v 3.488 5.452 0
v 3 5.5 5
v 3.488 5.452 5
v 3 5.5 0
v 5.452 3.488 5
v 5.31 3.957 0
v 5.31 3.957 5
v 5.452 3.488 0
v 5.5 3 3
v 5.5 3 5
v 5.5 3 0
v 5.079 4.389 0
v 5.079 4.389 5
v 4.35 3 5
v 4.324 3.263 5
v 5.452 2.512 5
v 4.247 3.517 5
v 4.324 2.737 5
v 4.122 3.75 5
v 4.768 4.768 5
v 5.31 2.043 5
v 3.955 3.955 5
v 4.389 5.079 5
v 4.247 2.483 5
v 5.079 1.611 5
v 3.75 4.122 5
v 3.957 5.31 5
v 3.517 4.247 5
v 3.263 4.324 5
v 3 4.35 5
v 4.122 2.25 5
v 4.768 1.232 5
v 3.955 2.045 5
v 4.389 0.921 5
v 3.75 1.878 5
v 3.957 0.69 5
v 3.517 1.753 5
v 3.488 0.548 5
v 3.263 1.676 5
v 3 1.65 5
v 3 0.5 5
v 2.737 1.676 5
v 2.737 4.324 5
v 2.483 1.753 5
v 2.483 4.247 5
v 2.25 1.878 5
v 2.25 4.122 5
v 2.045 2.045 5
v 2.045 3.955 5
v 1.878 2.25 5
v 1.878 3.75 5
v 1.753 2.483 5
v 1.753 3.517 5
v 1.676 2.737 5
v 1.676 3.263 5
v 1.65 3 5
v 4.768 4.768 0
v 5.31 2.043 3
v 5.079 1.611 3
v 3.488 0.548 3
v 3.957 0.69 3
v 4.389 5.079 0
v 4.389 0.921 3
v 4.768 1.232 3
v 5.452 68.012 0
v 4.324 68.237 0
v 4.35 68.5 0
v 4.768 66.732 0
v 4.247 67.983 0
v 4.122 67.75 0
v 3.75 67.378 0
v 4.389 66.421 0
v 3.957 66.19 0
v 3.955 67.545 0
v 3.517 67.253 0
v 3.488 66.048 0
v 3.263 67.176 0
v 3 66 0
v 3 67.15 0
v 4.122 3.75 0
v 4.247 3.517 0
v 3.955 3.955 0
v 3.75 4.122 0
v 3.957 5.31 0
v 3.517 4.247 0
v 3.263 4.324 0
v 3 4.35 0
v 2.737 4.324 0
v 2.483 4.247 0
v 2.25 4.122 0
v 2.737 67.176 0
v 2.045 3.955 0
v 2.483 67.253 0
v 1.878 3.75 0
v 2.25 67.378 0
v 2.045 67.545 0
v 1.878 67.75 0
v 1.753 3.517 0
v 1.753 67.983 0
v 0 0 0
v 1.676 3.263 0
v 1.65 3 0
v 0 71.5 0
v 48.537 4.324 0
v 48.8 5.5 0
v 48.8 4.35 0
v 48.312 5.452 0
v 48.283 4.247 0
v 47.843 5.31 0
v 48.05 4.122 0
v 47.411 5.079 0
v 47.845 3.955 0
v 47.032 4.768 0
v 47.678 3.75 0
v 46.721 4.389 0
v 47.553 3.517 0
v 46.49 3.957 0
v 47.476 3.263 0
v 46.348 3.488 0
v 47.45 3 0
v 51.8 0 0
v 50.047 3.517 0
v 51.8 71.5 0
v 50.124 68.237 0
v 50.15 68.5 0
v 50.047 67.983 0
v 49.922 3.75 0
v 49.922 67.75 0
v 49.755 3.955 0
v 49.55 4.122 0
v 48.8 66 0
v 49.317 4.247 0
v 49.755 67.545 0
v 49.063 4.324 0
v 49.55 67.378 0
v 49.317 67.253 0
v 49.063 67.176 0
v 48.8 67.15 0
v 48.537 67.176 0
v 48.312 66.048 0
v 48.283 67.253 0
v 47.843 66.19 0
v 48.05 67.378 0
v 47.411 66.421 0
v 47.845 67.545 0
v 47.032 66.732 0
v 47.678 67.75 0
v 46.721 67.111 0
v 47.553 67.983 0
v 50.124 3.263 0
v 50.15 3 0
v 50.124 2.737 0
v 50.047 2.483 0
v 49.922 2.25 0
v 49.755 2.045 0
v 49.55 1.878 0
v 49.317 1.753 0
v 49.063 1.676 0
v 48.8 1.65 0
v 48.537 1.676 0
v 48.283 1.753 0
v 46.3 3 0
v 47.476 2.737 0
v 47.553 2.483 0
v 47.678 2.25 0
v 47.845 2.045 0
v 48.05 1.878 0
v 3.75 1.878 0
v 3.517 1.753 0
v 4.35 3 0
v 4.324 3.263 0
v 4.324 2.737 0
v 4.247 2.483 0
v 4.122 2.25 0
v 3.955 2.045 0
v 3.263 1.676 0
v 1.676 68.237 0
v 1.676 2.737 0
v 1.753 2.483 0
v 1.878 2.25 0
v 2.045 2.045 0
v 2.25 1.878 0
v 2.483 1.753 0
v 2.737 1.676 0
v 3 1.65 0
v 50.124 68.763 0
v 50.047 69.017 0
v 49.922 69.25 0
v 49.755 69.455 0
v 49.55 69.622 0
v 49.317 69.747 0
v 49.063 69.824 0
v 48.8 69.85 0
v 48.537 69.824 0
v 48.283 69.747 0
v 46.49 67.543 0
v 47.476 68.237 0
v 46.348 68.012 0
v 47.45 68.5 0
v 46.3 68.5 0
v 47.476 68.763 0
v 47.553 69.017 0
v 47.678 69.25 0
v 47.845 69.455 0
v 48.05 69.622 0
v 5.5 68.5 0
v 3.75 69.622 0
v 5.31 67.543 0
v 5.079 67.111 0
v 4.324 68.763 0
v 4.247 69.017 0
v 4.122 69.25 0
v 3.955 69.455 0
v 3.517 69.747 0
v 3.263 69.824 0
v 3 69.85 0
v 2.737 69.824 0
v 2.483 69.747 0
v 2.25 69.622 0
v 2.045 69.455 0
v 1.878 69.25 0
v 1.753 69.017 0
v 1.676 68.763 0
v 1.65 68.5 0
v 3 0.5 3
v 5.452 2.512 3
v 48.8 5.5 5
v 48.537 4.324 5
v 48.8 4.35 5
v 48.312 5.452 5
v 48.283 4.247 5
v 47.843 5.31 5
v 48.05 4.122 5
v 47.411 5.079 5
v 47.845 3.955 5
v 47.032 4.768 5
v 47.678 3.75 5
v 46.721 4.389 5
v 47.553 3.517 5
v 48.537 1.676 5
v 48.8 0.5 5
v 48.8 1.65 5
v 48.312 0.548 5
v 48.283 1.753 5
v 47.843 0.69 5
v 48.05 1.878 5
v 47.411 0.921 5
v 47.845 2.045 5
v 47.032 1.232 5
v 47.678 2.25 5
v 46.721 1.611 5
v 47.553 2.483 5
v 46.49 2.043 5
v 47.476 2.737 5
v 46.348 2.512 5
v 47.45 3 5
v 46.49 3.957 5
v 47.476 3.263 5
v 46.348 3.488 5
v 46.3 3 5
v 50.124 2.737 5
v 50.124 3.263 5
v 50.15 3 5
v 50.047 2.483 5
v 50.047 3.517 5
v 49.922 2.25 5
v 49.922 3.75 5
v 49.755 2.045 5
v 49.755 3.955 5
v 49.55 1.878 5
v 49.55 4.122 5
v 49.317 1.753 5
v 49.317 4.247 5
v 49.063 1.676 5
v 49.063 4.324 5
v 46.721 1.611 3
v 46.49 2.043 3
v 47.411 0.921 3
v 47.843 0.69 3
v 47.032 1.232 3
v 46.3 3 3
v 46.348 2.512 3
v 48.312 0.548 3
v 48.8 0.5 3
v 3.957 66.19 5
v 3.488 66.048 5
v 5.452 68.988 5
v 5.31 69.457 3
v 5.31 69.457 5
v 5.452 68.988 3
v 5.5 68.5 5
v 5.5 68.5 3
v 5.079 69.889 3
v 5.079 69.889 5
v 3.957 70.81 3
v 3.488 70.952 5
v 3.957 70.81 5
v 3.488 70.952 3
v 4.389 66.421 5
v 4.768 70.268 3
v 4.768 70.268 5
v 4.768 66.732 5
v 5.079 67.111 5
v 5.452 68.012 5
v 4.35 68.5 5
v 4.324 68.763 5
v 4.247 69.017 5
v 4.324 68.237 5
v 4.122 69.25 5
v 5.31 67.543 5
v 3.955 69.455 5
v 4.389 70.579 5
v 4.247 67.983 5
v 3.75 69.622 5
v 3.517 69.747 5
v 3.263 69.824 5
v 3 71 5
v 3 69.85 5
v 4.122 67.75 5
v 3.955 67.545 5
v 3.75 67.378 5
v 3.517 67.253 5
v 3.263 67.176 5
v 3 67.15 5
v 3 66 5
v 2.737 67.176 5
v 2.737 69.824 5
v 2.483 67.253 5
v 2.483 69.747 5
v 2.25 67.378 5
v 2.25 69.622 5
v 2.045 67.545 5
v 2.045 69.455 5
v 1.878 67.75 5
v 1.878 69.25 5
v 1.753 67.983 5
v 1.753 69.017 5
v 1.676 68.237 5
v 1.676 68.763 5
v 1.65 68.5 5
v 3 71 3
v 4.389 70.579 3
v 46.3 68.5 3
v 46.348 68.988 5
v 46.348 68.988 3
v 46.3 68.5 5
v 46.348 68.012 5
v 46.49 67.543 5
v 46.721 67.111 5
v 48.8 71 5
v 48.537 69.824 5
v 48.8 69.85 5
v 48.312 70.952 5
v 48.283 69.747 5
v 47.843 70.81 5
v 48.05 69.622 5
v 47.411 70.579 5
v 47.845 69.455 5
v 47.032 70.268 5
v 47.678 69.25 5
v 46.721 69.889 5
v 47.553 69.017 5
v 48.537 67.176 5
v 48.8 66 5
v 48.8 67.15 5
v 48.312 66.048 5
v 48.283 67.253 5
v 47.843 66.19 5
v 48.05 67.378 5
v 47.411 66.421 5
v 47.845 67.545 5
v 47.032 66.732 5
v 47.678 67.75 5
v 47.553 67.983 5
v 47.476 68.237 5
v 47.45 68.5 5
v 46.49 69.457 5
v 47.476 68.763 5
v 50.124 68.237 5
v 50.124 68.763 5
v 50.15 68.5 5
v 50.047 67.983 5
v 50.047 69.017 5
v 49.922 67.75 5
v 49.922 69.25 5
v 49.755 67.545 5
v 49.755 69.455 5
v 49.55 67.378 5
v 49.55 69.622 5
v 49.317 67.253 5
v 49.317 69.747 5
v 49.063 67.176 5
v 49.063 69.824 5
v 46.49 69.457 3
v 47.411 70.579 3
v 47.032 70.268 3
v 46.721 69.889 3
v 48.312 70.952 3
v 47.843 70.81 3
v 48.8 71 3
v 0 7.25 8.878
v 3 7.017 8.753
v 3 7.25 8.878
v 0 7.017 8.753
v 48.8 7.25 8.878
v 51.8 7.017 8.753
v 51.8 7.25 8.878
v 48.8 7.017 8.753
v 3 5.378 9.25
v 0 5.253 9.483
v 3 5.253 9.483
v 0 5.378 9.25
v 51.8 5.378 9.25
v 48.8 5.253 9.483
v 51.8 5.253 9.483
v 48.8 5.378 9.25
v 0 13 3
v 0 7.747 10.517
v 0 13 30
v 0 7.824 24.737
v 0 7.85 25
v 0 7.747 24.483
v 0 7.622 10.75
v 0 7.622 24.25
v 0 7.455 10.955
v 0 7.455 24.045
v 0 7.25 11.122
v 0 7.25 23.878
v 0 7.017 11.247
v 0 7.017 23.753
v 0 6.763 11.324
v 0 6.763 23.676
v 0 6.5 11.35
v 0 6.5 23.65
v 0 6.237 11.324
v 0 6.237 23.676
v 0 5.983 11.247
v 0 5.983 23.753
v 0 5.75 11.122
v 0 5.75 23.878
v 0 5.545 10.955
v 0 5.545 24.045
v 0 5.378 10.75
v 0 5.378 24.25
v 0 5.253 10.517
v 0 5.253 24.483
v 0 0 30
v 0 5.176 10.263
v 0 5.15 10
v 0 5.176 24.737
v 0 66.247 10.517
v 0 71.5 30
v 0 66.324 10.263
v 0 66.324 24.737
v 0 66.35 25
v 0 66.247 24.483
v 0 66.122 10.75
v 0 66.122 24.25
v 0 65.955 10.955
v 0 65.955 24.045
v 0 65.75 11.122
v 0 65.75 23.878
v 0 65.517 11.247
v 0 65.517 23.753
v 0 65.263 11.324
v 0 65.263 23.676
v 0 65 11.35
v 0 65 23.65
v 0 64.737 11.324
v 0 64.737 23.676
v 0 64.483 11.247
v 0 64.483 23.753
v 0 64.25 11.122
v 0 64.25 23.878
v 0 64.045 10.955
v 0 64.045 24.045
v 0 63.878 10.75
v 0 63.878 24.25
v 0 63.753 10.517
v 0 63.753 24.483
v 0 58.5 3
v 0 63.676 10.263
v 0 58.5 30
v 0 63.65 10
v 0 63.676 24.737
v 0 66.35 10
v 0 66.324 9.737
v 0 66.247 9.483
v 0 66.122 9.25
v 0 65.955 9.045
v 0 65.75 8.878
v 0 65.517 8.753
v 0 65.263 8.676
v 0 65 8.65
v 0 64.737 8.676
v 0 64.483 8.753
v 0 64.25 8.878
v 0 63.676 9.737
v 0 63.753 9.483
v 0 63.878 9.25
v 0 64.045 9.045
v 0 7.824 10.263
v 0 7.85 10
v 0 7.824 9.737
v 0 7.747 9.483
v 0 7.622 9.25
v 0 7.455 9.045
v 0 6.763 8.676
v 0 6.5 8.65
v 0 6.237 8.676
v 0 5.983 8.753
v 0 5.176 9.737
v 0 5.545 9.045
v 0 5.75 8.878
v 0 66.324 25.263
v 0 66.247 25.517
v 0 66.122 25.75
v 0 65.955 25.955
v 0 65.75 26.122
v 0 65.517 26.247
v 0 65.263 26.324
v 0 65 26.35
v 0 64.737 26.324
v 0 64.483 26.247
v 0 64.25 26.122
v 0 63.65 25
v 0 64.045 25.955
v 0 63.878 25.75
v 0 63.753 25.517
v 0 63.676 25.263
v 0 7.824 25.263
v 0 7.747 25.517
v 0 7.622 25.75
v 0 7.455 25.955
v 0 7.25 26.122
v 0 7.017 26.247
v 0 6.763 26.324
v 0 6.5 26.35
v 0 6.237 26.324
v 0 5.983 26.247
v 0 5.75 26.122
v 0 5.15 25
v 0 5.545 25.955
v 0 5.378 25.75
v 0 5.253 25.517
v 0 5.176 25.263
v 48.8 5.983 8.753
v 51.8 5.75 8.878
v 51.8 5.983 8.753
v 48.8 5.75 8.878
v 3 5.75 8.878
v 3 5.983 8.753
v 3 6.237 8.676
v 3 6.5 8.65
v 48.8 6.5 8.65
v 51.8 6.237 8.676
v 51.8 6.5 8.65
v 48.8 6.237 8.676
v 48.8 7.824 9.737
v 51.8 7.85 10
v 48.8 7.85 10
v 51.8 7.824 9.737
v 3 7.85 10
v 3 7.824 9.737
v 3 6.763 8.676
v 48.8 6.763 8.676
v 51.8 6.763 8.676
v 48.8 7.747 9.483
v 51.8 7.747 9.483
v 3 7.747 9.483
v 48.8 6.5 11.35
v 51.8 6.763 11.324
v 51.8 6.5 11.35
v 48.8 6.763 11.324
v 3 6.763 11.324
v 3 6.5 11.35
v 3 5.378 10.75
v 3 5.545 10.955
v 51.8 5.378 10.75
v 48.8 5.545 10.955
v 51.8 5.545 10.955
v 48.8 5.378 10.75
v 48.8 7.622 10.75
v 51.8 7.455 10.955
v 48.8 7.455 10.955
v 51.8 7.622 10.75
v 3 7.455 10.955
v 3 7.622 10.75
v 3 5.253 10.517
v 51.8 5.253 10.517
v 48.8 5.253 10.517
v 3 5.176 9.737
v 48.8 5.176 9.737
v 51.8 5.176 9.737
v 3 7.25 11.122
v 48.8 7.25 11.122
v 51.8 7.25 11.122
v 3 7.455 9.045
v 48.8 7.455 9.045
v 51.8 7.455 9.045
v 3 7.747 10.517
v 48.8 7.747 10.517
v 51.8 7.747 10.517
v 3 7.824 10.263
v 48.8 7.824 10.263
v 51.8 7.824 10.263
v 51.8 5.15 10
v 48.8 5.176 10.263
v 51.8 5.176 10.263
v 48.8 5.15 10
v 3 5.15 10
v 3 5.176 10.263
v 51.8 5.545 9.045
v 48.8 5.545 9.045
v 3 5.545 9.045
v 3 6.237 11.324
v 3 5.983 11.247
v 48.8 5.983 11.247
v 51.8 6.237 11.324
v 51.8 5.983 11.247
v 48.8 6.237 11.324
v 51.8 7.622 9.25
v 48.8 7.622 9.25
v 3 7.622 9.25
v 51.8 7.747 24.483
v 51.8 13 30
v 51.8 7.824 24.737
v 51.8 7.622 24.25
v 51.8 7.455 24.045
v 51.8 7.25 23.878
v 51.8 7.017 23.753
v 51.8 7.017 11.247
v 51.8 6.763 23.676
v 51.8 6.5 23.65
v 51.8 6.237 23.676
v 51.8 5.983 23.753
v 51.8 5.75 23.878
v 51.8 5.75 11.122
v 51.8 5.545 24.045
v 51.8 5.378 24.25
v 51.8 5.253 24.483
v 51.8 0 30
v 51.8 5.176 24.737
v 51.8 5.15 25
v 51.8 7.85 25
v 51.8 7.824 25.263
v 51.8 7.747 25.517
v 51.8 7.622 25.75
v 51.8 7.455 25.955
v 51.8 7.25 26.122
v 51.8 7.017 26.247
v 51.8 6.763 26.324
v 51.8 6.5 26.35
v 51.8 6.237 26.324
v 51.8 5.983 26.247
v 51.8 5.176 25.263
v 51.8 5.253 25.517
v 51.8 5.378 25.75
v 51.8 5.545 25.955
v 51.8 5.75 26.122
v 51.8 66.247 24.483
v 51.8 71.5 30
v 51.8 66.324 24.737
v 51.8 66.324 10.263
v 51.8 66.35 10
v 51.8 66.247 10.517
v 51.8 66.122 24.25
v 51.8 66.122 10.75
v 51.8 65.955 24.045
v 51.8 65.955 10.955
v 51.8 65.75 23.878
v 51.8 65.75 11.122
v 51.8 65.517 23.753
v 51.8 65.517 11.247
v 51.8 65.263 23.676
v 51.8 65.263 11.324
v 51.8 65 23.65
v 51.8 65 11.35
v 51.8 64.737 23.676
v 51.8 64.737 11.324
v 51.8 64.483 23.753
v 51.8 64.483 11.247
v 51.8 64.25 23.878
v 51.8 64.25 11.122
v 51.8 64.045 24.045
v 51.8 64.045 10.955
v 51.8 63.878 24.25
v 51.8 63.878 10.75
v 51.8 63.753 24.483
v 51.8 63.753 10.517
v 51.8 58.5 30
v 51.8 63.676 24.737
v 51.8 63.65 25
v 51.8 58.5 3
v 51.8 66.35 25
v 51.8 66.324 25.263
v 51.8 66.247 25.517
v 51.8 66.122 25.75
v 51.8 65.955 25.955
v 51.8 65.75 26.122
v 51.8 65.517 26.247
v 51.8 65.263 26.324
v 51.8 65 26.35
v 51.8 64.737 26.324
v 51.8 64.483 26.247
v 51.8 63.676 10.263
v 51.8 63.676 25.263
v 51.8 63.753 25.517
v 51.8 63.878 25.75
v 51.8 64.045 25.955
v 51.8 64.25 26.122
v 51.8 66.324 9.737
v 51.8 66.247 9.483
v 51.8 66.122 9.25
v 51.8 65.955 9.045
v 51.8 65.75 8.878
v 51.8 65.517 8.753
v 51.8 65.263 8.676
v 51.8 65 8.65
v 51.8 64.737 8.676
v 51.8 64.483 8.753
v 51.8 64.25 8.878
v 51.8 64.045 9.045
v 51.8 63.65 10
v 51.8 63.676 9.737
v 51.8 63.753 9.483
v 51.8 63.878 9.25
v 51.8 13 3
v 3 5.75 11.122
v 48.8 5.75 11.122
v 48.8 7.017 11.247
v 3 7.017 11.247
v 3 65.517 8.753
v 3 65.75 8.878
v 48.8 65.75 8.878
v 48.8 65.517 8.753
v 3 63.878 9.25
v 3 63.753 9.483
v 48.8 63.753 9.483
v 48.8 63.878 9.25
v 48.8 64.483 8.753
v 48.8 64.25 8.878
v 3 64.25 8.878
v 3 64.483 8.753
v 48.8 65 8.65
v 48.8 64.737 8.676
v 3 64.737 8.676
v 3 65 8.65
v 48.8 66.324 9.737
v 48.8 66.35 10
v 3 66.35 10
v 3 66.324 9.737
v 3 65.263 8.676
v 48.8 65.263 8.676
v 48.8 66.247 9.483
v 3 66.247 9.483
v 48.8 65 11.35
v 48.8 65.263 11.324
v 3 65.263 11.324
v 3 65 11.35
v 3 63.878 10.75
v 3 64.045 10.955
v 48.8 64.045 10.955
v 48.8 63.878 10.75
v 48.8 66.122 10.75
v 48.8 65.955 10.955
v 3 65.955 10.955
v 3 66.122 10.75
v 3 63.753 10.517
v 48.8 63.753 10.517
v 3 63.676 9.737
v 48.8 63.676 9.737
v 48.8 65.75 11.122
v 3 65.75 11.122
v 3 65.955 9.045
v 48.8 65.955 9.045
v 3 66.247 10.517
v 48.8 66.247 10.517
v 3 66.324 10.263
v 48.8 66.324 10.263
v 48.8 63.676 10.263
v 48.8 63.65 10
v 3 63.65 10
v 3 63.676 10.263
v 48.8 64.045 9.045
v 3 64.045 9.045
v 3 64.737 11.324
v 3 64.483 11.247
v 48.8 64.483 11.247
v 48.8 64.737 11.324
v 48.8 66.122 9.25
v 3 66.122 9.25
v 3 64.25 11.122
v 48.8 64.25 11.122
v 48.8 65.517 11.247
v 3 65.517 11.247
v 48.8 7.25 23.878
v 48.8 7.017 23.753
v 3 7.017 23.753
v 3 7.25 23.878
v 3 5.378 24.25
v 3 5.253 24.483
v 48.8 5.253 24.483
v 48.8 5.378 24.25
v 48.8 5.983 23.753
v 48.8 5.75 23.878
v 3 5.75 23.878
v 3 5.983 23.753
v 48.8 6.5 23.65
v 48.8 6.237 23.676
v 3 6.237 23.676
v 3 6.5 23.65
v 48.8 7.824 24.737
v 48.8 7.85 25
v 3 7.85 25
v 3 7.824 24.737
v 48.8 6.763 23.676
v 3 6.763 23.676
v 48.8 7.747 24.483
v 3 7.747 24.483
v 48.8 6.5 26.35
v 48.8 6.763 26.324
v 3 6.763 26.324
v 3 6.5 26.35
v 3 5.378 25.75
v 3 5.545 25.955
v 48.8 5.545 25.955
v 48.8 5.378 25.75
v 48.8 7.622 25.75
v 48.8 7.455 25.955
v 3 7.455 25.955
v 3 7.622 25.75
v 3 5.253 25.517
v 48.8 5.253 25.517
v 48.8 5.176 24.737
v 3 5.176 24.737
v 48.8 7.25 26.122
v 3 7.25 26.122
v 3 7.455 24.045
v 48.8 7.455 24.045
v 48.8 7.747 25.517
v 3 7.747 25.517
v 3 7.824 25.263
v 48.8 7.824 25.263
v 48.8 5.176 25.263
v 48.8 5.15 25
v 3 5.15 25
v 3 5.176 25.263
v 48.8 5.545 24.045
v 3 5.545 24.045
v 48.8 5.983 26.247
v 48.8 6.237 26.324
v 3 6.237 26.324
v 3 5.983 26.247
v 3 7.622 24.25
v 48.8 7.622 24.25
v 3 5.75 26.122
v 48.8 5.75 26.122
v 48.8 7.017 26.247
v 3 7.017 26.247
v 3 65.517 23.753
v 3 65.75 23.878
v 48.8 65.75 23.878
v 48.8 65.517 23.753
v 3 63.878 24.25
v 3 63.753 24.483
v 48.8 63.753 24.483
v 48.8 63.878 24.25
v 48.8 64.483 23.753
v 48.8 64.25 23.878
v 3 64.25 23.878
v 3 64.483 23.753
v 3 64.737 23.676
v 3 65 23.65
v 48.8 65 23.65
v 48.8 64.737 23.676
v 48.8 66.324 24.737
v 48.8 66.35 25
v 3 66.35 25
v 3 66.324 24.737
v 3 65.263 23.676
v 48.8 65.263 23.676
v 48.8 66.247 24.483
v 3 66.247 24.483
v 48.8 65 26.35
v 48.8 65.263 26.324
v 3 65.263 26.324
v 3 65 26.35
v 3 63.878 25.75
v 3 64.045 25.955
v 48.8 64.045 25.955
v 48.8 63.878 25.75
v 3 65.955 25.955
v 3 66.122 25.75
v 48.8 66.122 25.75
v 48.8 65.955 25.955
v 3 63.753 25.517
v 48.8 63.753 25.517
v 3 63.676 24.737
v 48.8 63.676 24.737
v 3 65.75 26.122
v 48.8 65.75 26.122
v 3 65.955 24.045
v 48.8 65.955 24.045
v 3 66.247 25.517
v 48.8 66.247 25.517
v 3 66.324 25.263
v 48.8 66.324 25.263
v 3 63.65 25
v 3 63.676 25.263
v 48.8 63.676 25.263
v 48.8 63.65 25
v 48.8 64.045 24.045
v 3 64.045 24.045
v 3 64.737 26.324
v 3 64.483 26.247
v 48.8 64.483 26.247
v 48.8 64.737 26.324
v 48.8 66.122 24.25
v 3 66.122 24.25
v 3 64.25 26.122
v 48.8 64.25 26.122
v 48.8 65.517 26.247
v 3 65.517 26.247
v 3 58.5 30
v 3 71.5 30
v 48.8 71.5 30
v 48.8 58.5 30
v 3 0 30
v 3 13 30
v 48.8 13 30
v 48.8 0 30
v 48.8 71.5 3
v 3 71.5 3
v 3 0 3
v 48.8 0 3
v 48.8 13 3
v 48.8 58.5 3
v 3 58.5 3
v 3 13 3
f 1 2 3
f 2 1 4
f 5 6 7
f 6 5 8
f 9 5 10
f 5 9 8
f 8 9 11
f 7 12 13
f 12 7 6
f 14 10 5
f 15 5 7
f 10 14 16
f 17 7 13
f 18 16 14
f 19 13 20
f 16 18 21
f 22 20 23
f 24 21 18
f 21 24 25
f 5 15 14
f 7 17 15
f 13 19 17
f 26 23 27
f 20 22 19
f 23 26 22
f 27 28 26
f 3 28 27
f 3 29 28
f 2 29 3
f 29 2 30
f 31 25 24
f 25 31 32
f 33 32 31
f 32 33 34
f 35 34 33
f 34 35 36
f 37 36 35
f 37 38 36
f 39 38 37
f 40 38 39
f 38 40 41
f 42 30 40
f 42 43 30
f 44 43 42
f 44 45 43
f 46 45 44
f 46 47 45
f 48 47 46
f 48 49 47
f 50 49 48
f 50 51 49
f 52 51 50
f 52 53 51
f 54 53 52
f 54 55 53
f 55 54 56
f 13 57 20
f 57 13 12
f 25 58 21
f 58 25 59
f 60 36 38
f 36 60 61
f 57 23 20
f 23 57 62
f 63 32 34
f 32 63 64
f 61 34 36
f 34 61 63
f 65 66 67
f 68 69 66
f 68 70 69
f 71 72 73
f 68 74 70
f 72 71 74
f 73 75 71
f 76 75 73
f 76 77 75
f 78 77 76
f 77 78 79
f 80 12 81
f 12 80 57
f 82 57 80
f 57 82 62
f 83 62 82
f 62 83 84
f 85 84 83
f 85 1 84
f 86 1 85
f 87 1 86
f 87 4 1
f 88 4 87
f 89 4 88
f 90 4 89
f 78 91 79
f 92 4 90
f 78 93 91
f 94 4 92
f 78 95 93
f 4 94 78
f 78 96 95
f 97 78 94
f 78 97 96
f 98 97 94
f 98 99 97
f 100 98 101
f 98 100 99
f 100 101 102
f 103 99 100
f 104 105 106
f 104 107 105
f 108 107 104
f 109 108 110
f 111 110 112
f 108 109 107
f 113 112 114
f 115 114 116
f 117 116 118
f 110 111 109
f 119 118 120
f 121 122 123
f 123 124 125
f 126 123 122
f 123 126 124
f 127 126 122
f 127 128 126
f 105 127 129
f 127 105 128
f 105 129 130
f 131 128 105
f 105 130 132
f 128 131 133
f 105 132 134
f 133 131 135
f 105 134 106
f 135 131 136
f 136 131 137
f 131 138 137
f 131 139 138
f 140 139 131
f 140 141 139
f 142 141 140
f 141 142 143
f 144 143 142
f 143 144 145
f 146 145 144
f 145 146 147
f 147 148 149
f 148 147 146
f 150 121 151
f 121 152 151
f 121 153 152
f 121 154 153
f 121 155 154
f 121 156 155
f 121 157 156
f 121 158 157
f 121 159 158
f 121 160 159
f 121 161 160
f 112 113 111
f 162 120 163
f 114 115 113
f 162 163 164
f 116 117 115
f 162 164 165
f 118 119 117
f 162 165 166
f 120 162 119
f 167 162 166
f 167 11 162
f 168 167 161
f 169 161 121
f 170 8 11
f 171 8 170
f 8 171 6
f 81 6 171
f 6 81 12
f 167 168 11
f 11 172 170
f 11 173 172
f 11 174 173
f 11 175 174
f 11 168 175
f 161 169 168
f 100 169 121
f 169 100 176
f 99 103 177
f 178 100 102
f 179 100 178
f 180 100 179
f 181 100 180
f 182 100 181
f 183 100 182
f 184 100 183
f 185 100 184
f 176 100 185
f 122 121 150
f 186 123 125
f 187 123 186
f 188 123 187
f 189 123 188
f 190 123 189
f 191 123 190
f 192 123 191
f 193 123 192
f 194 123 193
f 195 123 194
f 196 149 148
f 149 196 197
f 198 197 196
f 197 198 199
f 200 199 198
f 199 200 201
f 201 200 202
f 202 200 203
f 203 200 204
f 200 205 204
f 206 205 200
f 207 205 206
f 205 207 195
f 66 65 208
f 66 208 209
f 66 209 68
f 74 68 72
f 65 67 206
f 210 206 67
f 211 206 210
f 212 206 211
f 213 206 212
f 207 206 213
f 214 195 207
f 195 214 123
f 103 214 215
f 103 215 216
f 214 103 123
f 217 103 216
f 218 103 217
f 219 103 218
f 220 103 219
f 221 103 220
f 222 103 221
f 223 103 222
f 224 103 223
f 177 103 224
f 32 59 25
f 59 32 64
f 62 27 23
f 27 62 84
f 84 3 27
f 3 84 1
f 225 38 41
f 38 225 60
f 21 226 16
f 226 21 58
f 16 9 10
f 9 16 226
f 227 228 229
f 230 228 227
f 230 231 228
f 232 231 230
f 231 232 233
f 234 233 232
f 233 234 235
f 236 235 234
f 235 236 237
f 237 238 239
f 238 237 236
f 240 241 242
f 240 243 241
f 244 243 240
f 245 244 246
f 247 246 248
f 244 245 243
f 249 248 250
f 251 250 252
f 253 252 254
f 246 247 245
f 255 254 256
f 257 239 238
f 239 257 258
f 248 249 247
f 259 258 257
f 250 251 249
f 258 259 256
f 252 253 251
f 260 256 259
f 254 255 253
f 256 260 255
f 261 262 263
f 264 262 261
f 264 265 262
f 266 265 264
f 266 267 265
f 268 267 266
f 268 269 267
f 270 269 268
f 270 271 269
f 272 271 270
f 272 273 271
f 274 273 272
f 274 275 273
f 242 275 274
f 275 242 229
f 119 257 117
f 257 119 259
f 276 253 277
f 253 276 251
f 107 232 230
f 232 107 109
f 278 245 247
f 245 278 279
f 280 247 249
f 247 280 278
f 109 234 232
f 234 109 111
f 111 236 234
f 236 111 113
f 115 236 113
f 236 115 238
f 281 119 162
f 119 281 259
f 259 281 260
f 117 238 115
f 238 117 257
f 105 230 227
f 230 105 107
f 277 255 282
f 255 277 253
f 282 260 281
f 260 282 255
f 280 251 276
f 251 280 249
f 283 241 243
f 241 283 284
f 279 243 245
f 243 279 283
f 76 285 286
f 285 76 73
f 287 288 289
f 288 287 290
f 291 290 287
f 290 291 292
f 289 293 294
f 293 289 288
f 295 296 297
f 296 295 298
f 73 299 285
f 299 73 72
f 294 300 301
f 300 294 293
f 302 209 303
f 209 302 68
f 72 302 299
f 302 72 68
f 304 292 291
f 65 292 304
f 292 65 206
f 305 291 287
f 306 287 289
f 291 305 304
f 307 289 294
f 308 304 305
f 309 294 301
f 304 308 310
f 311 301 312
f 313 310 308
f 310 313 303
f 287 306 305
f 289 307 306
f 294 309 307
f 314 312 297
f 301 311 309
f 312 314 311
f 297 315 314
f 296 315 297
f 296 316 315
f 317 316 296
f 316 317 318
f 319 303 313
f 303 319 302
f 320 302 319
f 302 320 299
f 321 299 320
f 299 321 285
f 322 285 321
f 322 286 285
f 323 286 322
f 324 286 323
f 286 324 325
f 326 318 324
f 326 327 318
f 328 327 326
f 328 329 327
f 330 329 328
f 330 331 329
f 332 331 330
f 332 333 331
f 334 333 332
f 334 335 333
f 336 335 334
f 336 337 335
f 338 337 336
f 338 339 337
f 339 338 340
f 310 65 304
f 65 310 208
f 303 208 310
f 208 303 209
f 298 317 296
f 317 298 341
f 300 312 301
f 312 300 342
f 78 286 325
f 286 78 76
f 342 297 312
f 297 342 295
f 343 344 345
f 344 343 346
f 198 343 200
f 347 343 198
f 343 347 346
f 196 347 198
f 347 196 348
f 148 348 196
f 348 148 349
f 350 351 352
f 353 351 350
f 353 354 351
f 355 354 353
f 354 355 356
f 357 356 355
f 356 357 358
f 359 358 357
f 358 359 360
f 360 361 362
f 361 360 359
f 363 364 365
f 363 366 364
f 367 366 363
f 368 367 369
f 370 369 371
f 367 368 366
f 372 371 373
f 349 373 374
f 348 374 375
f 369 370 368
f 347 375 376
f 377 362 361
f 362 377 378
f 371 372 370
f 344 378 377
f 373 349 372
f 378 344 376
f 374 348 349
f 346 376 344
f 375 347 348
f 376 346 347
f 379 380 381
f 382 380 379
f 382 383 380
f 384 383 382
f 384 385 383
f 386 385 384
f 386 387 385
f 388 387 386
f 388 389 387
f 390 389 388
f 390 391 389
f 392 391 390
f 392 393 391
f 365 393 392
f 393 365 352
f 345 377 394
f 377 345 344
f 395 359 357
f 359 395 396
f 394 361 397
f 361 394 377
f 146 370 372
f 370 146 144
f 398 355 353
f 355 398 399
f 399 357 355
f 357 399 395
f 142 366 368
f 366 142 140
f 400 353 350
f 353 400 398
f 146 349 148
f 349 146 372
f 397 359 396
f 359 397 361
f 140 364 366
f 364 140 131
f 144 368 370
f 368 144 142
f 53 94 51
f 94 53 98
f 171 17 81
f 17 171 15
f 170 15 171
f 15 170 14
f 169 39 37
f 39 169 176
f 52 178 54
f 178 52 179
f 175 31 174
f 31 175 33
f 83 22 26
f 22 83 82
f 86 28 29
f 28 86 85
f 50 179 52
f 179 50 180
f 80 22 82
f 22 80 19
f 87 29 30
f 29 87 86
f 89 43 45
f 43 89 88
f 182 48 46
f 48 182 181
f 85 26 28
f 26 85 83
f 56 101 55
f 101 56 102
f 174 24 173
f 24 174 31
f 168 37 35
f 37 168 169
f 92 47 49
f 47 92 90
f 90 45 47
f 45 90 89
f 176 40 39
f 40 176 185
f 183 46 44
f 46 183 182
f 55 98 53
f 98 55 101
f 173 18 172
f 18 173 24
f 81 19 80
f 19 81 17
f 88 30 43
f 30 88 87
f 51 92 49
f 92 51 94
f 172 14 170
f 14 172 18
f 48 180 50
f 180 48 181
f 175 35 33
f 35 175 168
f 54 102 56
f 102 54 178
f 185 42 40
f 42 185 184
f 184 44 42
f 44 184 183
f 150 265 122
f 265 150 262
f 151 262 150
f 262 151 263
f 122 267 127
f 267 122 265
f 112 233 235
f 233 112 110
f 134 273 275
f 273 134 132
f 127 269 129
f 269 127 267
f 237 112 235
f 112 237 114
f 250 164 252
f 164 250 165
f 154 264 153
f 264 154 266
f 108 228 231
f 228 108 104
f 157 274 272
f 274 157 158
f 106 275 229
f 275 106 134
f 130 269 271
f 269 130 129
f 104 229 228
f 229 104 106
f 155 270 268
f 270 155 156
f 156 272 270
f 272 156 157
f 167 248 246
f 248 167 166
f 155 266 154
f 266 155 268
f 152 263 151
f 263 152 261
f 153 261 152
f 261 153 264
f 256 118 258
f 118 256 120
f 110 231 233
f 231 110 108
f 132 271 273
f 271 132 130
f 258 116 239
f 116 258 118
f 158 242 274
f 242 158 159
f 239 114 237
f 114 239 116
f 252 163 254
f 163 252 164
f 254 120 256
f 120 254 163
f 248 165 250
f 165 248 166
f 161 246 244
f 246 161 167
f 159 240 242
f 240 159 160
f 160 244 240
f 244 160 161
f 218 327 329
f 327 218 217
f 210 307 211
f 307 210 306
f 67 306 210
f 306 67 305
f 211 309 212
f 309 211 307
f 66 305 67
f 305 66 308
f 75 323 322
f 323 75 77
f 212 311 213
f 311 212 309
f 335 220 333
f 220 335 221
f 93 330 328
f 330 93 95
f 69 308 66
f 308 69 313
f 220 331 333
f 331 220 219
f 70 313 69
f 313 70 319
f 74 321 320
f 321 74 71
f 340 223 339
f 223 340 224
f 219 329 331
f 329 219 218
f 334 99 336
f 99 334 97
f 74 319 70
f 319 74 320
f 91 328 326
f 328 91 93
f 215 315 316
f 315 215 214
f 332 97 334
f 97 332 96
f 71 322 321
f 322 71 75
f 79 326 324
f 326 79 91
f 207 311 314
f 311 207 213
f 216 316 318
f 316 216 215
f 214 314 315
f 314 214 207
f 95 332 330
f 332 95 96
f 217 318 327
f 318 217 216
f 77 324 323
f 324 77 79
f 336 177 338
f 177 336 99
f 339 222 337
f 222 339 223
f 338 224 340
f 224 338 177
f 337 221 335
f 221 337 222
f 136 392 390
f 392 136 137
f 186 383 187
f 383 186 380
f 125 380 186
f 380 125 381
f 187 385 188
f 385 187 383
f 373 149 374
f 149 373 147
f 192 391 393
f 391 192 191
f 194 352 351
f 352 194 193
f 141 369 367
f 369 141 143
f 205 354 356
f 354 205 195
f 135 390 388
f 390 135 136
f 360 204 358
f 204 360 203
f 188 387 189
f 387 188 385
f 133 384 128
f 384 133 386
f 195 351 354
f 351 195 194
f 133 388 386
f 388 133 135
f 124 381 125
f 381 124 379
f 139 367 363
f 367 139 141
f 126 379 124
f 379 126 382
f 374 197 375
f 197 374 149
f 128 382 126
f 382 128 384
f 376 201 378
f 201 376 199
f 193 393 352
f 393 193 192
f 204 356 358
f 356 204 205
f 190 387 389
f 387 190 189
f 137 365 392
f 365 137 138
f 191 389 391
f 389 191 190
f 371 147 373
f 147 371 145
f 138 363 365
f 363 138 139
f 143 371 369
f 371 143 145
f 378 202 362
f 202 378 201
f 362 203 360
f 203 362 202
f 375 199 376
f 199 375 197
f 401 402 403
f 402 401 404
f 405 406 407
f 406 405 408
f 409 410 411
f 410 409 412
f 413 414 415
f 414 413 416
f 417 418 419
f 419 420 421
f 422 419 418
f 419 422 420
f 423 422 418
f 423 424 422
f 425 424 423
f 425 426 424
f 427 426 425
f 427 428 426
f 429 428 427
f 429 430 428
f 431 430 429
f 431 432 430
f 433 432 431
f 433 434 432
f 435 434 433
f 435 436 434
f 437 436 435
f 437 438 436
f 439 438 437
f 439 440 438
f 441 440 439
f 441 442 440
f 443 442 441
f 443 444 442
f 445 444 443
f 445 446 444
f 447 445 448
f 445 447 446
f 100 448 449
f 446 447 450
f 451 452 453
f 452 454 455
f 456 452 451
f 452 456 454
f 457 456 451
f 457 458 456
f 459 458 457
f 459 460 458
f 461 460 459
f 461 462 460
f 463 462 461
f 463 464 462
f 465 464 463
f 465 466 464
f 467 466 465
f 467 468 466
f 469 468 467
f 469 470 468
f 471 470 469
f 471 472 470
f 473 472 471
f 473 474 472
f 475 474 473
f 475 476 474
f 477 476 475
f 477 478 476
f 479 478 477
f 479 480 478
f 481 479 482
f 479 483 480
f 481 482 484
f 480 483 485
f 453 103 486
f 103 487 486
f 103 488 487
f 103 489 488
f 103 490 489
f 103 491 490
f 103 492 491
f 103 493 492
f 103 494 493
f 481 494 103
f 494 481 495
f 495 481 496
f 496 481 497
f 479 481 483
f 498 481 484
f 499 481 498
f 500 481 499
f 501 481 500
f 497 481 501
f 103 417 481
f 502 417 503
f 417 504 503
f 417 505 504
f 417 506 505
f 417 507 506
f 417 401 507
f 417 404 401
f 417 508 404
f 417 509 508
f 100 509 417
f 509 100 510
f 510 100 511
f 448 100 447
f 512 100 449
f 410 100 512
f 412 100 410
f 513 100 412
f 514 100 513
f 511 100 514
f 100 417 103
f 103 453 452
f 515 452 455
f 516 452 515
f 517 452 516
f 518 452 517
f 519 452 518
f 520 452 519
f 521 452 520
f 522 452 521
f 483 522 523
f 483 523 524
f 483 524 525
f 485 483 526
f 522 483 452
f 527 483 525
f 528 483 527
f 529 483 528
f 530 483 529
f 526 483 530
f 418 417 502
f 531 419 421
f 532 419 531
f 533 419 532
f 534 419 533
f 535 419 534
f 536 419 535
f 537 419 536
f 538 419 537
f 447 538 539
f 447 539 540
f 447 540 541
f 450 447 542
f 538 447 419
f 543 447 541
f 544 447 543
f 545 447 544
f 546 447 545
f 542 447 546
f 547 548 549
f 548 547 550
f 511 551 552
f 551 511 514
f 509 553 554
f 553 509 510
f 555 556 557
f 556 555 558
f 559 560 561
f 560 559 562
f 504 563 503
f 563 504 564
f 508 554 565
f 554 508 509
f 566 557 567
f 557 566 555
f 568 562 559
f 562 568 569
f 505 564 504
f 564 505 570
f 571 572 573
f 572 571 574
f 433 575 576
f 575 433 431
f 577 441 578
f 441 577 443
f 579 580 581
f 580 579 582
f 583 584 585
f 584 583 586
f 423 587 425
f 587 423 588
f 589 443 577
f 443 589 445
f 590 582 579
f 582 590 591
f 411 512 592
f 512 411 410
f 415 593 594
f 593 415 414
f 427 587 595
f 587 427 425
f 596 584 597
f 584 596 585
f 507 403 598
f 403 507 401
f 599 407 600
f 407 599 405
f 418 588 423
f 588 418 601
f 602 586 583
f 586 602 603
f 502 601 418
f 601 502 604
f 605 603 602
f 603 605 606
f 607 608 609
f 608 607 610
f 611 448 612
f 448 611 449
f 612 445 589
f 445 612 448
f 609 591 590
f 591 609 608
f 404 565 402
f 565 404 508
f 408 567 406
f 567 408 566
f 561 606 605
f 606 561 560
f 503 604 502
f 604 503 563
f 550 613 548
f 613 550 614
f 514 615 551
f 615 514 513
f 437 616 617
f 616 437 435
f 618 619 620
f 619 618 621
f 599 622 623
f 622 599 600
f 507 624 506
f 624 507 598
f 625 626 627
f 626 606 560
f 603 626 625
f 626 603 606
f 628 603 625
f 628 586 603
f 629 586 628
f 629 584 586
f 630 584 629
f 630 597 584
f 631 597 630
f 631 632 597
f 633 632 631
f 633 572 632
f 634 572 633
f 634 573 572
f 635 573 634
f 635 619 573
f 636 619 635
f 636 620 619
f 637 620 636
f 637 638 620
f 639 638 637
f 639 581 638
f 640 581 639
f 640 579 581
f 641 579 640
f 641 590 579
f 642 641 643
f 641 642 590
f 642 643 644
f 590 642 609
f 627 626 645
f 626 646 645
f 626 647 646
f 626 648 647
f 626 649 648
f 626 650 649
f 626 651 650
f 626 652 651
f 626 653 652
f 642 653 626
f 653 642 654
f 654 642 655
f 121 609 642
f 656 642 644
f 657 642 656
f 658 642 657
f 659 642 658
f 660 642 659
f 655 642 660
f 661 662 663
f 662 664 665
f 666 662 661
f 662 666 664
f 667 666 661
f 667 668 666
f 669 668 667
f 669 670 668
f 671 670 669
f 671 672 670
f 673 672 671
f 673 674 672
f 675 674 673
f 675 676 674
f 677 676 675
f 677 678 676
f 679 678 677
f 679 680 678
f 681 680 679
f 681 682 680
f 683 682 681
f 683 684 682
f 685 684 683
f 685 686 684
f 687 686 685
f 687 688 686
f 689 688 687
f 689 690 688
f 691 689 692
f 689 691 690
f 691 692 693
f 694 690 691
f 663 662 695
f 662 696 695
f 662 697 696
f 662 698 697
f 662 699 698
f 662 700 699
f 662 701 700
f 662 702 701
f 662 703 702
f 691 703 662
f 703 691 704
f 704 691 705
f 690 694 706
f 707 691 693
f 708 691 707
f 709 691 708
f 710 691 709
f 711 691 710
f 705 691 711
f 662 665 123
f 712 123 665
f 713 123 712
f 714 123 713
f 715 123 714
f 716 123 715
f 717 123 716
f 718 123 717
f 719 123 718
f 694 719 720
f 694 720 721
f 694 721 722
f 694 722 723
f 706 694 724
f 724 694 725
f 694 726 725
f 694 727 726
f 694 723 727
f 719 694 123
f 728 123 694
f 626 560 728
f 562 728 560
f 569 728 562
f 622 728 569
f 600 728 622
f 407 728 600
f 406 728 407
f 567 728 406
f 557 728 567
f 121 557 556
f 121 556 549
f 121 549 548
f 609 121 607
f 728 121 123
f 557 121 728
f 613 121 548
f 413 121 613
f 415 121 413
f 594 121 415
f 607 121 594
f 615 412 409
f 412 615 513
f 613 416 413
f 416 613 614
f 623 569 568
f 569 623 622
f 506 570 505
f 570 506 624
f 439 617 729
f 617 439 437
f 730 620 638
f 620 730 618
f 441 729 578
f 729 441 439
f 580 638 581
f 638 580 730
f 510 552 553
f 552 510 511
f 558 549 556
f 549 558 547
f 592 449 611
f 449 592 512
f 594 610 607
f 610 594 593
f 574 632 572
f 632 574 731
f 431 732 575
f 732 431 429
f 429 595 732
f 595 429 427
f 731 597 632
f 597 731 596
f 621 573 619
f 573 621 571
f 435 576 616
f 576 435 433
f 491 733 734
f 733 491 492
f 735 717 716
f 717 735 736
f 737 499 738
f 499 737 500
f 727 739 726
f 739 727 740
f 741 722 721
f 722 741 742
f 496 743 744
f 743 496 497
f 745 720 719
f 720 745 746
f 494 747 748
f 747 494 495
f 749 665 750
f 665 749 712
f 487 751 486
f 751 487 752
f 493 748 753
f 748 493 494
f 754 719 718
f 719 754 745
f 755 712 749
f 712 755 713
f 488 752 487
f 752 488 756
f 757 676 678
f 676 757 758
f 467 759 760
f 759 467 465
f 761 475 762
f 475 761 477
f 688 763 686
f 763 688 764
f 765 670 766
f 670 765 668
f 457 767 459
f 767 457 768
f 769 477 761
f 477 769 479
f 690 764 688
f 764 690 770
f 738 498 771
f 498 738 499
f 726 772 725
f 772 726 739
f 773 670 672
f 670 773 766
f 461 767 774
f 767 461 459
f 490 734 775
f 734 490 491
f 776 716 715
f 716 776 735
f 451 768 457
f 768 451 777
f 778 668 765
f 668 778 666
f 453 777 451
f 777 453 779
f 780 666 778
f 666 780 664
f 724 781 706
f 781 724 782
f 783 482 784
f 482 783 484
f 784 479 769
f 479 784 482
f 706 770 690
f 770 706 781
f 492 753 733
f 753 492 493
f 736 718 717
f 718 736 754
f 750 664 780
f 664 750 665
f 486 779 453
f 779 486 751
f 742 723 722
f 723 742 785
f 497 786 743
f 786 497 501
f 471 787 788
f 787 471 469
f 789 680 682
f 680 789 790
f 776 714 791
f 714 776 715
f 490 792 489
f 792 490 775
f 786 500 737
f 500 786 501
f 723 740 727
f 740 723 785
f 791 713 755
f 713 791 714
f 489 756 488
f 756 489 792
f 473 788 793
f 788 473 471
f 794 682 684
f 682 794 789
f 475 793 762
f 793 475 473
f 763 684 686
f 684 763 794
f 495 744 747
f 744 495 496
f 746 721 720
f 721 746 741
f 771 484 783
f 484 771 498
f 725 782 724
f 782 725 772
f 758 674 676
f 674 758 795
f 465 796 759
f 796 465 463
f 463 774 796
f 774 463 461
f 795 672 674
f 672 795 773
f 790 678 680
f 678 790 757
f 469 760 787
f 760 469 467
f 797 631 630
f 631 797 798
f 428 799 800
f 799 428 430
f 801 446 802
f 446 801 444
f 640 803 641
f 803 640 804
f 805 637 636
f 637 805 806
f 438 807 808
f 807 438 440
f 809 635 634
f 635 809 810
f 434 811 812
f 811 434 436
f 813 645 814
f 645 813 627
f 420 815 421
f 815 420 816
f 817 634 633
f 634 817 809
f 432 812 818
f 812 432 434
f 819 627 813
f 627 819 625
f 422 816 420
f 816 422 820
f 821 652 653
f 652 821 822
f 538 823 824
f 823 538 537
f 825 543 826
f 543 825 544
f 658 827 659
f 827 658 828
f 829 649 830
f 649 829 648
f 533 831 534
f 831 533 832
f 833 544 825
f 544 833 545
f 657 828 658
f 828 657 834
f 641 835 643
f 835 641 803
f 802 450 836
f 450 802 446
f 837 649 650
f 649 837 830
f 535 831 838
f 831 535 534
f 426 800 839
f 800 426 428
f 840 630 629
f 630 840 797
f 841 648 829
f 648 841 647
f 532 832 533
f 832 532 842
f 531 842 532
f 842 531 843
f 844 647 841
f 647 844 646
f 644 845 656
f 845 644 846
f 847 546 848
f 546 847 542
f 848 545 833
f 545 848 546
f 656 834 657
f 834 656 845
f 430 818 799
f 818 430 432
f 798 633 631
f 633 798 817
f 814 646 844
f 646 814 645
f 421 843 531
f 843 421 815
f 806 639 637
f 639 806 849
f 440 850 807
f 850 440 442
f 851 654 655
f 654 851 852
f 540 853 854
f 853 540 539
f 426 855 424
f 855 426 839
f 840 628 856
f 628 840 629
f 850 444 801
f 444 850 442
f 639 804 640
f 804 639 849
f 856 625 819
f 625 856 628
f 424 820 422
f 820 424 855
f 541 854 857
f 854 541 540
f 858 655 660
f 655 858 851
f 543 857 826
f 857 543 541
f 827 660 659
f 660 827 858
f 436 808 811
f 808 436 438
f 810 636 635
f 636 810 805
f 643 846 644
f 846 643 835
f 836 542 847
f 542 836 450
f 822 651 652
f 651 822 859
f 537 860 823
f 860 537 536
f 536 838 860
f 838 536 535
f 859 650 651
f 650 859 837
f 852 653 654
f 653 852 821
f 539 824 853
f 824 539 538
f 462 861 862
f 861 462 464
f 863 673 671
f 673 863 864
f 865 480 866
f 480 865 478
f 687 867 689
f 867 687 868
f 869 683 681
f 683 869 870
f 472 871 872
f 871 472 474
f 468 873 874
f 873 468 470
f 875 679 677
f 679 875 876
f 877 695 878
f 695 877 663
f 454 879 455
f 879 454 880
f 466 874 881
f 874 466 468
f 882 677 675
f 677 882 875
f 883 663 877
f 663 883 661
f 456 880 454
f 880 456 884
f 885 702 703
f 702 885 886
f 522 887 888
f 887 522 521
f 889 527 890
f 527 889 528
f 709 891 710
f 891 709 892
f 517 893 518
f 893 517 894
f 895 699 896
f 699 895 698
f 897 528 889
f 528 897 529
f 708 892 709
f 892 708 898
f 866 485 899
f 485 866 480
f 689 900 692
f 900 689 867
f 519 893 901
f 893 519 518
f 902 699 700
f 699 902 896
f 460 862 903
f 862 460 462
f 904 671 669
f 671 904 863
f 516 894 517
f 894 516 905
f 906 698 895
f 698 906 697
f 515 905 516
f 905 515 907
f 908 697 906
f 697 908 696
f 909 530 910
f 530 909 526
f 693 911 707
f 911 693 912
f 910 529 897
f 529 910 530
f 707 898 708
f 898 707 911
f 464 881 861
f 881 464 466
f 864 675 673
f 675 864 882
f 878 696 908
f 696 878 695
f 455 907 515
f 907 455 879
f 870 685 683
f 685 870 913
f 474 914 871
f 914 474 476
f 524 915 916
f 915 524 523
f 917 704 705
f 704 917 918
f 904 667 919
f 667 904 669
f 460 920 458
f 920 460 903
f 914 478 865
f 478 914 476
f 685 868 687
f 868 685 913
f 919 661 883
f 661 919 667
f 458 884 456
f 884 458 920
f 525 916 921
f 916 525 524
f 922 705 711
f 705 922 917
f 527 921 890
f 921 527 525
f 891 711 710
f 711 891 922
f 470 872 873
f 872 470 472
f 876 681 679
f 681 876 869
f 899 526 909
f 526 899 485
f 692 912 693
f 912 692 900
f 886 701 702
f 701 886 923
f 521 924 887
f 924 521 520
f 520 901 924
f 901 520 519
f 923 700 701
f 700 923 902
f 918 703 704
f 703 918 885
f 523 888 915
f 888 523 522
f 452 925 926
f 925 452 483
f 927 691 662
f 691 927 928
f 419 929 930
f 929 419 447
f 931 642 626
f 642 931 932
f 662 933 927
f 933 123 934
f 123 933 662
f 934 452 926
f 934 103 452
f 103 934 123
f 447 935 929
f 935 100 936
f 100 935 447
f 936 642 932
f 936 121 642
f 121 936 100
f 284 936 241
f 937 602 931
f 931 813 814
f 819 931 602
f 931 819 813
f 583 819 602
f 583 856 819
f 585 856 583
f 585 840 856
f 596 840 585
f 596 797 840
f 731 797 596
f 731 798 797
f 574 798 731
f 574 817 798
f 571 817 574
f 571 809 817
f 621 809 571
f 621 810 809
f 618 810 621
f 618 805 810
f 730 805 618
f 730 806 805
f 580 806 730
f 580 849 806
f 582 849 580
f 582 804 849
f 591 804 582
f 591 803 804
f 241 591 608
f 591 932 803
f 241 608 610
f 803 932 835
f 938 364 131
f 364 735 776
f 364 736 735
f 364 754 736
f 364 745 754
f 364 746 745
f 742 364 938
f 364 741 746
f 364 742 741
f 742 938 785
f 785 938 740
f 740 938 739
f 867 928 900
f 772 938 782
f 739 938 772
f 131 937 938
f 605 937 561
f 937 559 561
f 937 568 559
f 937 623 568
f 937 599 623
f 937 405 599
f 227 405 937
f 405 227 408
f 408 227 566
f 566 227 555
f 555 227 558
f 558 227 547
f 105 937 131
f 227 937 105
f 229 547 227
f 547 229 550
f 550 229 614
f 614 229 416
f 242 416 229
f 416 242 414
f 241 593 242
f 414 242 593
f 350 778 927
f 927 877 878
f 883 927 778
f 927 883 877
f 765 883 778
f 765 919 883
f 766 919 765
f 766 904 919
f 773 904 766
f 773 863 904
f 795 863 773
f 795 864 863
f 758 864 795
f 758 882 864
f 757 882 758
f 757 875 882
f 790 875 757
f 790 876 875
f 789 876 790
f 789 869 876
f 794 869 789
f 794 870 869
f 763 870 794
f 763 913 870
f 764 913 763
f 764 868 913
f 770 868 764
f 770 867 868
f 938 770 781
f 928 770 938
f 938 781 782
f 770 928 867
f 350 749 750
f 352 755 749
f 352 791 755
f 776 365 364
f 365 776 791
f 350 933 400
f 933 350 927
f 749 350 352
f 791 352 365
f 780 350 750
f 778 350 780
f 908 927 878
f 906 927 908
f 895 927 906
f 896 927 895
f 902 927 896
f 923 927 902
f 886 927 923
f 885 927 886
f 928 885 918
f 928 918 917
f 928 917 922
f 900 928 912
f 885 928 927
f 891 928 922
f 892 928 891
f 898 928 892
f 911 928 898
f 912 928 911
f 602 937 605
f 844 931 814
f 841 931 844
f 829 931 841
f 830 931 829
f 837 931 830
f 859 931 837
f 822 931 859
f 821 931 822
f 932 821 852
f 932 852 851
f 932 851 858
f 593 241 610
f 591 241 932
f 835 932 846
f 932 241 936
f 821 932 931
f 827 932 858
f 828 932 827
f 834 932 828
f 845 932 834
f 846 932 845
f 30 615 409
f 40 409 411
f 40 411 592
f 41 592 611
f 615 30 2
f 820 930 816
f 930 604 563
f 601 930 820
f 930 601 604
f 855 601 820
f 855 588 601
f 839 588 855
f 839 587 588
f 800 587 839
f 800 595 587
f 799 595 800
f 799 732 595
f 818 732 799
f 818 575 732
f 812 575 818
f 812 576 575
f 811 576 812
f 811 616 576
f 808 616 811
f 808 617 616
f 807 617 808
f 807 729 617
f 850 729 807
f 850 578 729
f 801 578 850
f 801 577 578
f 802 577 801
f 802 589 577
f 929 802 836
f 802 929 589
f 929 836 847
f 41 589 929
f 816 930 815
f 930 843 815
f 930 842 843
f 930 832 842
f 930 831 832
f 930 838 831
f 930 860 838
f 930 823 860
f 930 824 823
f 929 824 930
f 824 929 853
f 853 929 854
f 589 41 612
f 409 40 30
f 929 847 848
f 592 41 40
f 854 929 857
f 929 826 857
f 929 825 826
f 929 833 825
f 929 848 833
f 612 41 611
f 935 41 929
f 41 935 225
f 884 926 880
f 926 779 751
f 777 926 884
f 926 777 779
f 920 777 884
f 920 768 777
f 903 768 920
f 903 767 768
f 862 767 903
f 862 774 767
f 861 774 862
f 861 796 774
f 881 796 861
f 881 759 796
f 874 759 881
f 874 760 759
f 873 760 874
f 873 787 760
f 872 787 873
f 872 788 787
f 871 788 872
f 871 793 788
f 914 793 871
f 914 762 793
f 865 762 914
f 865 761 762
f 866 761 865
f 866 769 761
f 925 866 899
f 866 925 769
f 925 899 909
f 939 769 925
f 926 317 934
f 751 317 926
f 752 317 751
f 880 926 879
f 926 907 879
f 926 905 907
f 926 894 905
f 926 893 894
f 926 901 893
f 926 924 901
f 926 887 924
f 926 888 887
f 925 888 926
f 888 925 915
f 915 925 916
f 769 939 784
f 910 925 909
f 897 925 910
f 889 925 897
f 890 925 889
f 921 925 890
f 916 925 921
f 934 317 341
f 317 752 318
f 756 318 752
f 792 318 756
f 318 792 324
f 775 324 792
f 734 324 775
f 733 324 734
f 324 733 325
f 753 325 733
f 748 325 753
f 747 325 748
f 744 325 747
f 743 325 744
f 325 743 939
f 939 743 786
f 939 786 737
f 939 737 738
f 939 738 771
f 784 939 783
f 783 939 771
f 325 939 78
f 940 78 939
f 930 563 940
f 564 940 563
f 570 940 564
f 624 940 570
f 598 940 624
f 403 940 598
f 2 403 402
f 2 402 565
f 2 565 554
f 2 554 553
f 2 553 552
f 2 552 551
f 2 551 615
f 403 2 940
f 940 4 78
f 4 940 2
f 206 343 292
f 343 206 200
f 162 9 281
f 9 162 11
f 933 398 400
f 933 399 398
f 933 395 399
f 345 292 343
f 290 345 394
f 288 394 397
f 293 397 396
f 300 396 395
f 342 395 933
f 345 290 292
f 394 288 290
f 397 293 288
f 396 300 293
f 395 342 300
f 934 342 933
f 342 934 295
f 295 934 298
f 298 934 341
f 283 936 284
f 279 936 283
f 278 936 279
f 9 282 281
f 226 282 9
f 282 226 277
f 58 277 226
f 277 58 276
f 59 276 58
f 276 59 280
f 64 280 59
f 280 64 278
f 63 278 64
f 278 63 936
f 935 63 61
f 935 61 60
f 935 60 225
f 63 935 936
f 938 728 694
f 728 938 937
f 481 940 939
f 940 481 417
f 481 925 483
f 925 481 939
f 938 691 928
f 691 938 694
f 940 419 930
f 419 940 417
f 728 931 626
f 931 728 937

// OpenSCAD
pcb_height = 30;
pcb_wall_width = 3;


pcb_hole_padding_w = 45.8;
pcb_hole_padding_l = 65.5;

pcb_width = pcb_hole_padding_w;
pcb_length = pcb_hole_padding_l;


pcb_screw_pin_height = 5;



pcb_hole_d = 2.7;
pcb_hole_padding_w = 45.8;
pcb_hole_padding_l = 65.5;
pcb_screw_pin_outer_d = 5;
pcb_screw_pin_inner_d = 2.7;

motorcase_hole_d = 3;
motorcase_hole_padding = 17.9;
motorcase_hole_to_axe = 19.0;
motorcase_axe_d = 7.0;
motorcase_axe_padding = 7.0;
motorcase_holder_width = 4;
motorcase_holder_height = 40;
motorcase_holder_length = 15;
wheel_d = 62;
wheel_width = 23;

bot_d = 140;
bot_base_height = 2;
fn = 32;

module bot() {
    module plate() {
        difference(){
            cylinder(h=bot_base_height, r=bot_d / 2, center=false, $fn=32);
            translate([wheel_d / 2 + motorcase_axe_padding, - wheel_d / 2, 0 ])
            cube([wheel_width, wheel_d, wheel_d]);
            translate([- wheel_d / 2 - wheel_width - motorcase_axe_padding, - wheel_d / 2, 0 ])
            cube([wheel_width, wheel_d, wheel_d]);
        }
    }

    module pcb_holder() {
        module base() {
            difference(){
                cube([pcb_width + pcb_wall_width*2, pcb_length+ pcb_wall_width*2, pcb_height]);
                translate([pcb_wall_width, pcb_wall_width, 0])
                cube([pcb_width, pcb_length, pcb_height]);

                translate([pcb_wall_width, 0, pcb_wall_width]){
                    cube([pcb_width, pcb_length+ pcb_wall_width*2, pcb_height - pcb_wall_width]);
                }

                translate([0, pcb_wall_width +10, pcb_wall_width]){
                    cube([pcb_width + pcb_wall_width*2, pcb_length - 20, pcb_height - pcb_wall_width]);
                }
                connector_screw_holes();
                //translate([0, (pcb_wall_width + 10) /2, pcb_screw_pin_height + 5]) rotate([0,90,0]) cylinder(h=pcb_width + pcb_wall_width*2, d=pcb_screw_pin_inner_d, center=false, $fn=fn);
                //translate([0, pcb_length + pcb_wall_width * 2 - (pcb_wall_width + 10) /2, pcb_screw_pin_height + 5]) rotate([0,90,0]) cylinder(h=pcb_width + pcb_wall_width*2, d=pcb_screw_pin_inner_d, center=false, $fn=fn);
                //translate([0, (pcb_wall_width + 10) /2, pcb_height - 5]) rotate([0,90,0]) cylinder(h=pcb_width + pcb_wall_width*2, d=pcb_screw_pin_inner_d, center=false, $fn=fn);
                //translate([0, pcb_length + pcb_wall_width * 2 - (pcb_wall_width + 10) /2, pcb_height - 5]) rotate([0,90,0]) cylinder(h=pcb_width + pcb_wall_width*2, d=pcb_screw_pin_inner_d, center=false, $fn=fn);
            }
            pcb_screw_pins_m(pcb_screw_pin_outer_d);
        }

        module pcb_screw_pins_m(diameter) {
            module pin() {
                cylinder(h=pcb_screw_pin_height, r=diameter / 2, center=false, $fn=fn);
            }
            translate([pcb_wall_width , pcb_wall_width, 0]) {
                pin();
                translate([pcb_hole_padding_w, 0, 0]) pin();
                translate([0, pcb_hole_padding_l, 0]) pin();
                translate([pcb_hole_padding_w, pcb_hole_padding_l, 0]) pin();
            }
        }

        difference() {
            base();
            pcb_screw_pins_m(pcb_screw_pin_inner_d);
        }
    }

    module connector_screw_holes() {
        translate([0, (pcb_wall_width + 10) /2, pcb_screw_pin_height + 5]) rotate([0,90,0]) cylinder(h=pcb_width + pcb_wall_width*2, d=pcb_screw_pin_inner_d, center=false, $fn=fn);
        translate([0, pcb_length + pcb_wall_width * 2 - (pcb_wall_width + 10) /2, pcb_screw_pin_height + 5]) rotate([0,90,0]) cylinder(h=pcb_width + pcb_wall_width*2, d=pcb_screw_pin_inner_d, center=false, $fn=fn);
        translate([0, (pcb_wall_width + 10) /2, pcb_height - 5]) rotate([0,90,0]) cylinder(h=pcb_width + pcb_wall_width*2, d=pcb_screw_pin_inner_d, center=false, $fn=fn);
        translate([0, pcb_length + pcb_wall_width * 2 - (pcb_wall_width + 10) /2, pcb_height - 5]) rotate([0,90,0]) cylinder(h=pcb_width + pcb_wall_width*2, d=pcb_screw_pin_inner_d, center=false, $fn=fn);
    }

    
    module motor_holder(){
        //motorcase_hole_d = 3;
        //motorcase_hole_padding = 17.9;

        motor_holder_width = 3;
        motor_holder_length = pcb_hole_padding_l + pcb_wall_width*2;
        motor_holder_height = 17.9 + 5;
        total_height = 100;

        module motor_holes() {
            translate([0, motor_holder_length/2 + motorcase_hole_to_axe, motorcase_hole_d]){
                translate([0,0,0]) rotate([0,90,0]) cylinder(h=motor_holder_width, d=motorcase_hole_d, center=false, $fn=fn);
                translate([0,0,motorcase_hole_padding]) rotate([0,90,0]) cylinder(h=motor_holder_width, d=motorcase_hole_d, center=false, $fn=fn);
            }
        }

        module base() {
            cube([motor_holder_width, motor_holder_length, motor_holder_height]);
            translate([0,0,0]) cube([motor_holder_width, pcb_wall_width+10, total_height]);
            translate([0,motor_holder_length- pcb_wall_width-10,0]) cube([motor_holder_width, pcb_wall_width+10, total_height]);
        }

        module connector_holes(){
            translate([0,0 , 0]) {
            translate([0, (pcb_wall_width + 10) /2 - pcb_screw_pin_inner_d/2, 5]) cube([motor_holder_width, pcb_screw_pin_inner_d, total_height-10]);
            translate([0, pcb_length + pcb_wall_width * 2 - (pcb_wall_width + 10) /2 - pcb_screw_pin_inner_d/2, 5]) cube([motor_holder_width, pcb_screw_pin_inner_d, total_height-10]);
            }
            //cube([motor_holder_width, pcb_screw_pin_inner_d, total_height-20])
        }

        difference(){
            base();
            motor_holes();
            connector_holes();
        }

    }
    
    pcb_holder();
    //translate([-30, 0, 0]) motor_holder();
}

bot();
